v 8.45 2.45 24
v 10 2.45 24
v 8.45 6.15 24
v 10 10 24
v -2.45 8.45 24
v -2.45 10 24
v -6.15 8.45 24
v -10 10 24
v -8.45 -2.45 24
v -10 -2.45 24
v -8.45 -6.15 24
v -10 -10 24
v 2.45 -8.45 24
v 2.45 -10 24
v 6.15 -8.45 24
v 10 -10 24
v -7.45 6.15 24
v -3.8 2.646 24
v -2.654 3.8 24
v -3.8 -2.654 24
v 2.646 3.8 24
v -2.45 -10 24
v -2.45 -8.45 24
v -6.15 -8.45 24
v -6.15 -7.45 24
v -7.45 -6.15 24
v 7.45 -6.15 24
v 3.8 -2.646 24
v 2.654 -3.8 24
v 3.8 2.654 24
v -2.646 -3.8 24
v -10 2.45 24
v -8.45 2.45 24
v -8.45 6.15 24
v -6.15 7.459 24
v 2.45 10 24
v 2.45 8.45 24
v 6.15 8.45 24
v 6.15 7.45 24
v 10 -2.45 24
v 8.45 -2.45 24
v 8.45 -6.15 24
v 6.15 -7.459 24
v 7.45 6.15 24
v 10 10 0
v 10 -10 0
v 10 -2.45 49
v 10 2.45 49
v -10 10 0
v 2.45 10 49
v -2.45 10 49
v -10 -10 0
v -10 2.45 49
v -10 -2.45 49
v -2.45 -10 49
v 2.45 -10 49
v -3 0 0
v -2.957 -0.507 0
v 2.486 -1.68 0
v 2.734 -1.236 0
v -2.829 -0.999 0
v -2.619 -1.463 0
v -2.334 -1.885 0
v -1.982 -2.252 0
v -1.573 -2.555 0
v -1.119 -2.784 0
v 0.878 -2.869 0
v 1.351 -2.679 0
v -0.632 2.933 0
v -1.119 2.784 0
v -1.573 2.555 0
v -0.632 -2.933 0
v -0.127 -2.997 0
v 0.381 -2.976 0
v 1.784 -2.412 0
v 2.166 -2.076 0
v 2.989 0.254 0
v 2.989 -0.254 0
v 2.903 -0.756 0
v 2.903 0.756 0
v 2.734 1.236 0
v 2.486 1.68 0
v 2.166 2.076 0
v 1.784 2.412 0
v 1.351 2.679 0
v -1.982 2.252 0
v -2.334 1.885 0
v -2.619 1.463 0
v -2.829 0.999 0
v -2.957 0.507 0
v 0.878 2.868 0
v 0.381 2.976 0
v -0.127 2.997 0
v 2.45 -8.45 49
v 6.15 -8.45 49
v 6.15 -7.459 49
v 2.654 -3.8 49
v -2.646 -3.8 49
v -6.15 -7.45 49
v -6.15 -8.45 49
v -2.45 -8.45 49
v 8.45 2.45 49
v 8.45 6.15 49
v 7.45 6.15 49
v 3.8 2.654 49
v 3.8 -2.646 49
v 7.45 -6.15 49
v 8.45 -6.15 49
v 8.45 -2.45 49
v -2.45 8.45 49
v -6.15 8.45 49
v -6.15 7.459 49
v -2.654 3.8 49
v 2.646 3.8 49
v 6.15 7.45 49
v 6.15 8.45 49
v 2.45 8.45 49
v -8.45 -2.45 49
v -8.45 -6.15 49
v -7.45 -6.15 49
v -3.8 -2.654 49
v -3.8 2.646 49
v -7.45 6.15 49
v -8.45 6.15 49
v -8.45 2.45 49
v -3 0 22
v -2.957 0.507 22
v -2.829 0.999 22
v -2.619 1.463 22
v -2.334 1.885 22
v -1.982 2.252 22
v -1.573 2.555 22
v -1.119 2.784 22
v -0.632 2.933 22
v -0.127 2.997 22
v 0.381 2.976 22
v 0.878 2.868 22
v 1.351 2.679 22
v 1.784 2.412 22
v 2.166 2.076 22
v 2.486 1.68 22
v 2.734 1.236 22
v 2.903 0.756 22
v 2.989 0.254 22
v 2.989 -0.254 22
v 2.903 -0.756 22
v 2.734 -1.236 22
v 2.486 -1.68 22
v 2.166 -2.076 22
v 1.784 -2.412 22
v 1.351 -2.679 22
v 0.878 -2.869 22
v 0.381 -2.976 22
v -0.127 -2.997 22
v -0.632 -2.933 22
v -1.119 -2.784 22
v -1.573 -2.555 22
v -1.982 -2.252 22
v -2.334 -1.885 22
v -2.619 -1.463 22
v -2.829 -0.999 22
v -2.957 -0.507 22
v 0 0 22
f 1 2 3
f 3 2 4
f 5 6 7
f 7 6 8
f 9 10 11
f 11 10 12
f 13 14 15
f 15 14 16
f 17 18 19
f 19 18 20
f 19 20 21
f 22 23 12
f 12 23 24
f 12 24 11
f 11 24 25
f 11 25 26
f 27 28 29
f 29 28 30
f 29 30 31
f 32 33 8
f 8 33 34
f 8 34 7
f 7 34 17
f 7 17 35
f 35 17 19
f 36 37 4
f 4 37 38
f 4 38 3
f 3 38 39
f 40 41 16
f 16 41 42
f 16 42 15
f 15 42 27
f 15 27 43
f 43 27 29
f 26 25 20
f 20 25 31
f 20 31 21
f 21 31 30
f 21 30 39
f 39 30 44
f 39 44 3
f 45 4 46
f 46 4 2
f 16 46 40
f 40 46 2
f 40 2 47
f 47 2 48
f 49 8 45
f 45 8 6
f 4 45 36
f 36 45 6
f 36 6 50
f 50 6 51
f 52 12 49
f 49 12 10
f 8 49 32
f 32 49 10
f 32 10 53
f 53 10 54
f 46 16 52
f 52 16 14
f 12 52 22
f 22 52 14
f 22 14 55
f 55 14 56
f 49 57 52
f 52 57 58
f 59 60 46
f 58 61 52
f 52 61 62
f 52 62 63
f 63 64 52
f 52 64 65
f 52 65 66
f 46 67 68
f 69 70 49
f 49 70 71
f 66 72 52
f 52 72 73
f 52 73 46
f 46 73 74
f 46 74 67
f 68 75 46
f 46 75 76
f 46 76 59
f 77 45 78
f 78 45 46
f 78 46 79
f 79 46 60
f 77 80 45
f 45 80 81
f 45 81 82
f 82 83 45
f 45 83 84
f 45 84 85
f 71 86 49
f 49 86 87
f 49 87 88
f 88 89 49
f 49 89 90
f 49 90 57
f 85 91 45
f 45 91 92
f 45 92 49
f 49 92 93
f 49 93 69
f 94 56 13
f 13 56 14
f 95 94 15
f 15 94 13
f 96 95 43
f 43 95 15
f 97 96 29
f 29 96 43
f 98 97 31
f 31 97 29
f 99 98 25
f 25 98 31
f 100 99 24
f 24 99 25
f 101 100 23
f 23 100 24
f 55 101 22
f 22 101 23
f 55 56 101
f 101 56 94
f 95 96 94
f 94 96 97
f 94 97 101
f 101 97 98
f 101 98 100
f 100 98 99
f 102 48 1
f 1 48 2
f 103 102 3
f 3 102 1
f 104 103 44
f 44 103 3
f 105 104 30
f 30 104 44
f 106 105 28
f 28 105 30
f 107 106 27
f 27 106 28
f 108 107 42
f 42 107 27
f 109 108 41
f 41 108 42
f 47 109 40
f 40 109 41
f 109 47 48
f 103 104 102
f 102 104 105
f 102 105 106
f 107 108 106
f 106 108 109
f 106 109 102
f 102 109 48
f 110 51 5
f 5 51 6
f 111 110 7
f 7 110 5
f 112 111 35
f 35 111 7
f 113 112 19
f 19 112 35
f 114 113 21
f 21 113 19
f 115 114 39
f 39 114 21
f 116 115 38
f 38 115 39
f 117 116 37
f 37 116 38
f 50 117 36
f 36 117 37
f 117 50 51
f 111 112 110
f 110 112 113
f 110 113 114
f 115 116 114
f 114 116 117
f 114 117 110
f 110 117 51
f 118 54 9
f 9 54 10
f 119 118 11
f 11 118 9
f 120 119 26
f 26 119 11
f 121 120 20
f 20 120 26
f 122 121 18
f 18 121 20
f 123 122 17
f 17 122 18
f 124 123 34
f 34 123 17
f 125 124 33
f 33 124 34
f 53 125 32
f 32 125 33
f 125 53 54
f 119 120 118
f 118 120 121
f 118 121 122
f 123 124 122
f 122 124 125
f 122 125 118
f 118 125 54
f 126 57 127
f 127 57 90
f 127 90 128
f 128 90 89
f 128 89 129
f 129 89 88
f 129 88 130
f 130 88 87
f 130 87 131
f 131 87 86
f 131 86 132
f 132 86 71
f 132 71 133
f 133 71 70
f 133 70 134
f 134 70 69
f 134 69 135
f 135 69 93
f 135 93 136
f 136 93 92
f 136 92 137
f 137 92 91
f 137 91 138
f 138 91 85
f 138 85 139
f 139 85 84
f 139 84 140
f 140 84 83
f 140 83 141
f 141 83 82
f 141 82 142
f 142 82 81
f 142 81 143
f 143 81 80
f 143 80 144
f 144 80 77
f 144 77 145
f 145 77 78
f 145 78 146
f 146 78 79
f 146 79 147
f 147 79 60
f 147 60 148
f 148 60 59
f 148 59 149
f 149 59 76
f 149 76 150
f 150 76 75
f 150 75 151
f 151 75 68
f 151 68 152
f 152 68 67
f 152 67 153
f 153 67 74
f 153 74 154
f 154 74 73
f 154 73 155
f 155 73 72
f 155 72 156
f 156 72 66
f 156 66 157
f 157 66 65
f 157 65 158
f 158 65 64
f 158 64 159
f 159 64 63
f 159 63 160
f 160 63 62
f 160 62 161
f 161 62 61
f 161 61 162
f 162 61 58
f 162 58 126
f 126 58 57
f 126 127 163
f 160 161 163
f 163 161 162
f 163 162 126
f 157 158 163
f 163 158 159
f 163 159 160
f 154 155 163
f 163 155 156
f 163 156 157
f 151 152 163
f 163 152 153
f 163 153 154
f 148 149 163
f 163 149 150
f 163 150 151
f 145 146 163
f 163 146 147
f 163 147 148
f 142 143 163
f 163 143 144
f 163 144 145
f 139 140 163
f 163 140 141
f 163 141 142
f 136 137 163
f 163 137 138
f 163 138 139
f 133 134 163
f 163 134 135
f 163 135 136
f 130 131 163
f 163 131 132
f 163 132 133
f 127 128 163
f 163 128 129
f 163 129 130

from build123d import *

# Parameters (mm, degrees)
ESQUISSE1_W             = 20
ESQUISSE1_H             = 20
BOSS_EXTRU_1_DEPTH      = 24
BOSS_EXTRU_2_DEPTH      = 25
BOSS_EXTRU_3_DEPTH      = 25
BOSS_EXTRU_4_DEPTH      = 25
BOSS_EXTRU_5_DEPTH      = 25
ESQUISSE6_R             = 3
ENL_V_MAT_EXTRU_1_DEPTH = 22


with BuildPart() as part:
    # Esquisse1 → Boss.-Extru.1 (new body)
    with BuildSketch(Plane.XY):
        Rectangle(ESQUISSE1_W, ESQUISSE1_H)
    extrude(amount=BOSS_EXTRU_1_DEPTH)

    # Esquisse2 → Boss.-Extru.2 (add)
    with BuildSketch(Plane.XY.offset(24)):
        Polygon((-2.45, -10), (-2.45, -8.45), (-6.15, -8.45), (-6.15, -7.45), (-2.645559959, -3.8), (2.654440041, -3.8), (6.15, -7.458505237), (6.15, -8.45), (2.45, -8.45), (2.45, -10), align=None)
    extrude(amount=BOSS_EXTRU_2_DEPTH)

    # Esquisse3 → Boss.-Extru.3 (add)
    with BuildSketch(Plane.XY.offset(24)):
        Polygon((10, -2.45), (8.45, -2.45), (8.45, -6.15), (7.45, -6.15), (3.8, -2.645559959), (3.8, 2.654440041), (7.45, 6.15), (8.45, 6.15), (8.45, 2.45), (10, 2.45), align=None)
    extrude(amount=BOSS_EXTRU_3_DEPTH)

    # Esquisse4 → Boss.-Extru.4 (add)
    with BuildSketch(Plane.XY.offset(24)):
        Polygon((2.45, 10), (2.45, 8.45), (6.15, 8.45), (6.15, 7.45), (2.645559959, 3.8), (-2.654440041, 3.8), (-6.15, 7.458505237), (-6.15, 8.45), (-2.45, 8.45), (-2.45, 10), align=None)
    extrude(amount=BOSS_EXTRU_4_DEPTH)

    # Esquisse5 → Boss.-Extru.5 (add)
    with BuildSketch(Plane.XY.offset(24)):
        Polygon((-10, 2.45), (-8.45, 2.45), (-8.45, 6.15), (-7.45, 6.15), (-3.8, 2.645559959), (-3.8, -2.654440041), (-7.45, -6.15), (-8.45, -6.15), (-8.45, -2.45), (-10, -2.45), align=None)
    extrude(amount=BOSS_EXTRU_5_DEPTH)

    # Esquisse6 → Enlèv. mat.-Extru.1 (cut)
    with BuildSketch(Plane(origin=(0, 0, 0), x_dir=(-1, 0, 0), z_dir=(0, 0, -1))):
        Circle(ESQUISSE6_R)
    extrude(amount=-ENL_V_MAT_EXTRU_1_DEPTH, mode=Mode.SUBTRACT)


solid = part.part
